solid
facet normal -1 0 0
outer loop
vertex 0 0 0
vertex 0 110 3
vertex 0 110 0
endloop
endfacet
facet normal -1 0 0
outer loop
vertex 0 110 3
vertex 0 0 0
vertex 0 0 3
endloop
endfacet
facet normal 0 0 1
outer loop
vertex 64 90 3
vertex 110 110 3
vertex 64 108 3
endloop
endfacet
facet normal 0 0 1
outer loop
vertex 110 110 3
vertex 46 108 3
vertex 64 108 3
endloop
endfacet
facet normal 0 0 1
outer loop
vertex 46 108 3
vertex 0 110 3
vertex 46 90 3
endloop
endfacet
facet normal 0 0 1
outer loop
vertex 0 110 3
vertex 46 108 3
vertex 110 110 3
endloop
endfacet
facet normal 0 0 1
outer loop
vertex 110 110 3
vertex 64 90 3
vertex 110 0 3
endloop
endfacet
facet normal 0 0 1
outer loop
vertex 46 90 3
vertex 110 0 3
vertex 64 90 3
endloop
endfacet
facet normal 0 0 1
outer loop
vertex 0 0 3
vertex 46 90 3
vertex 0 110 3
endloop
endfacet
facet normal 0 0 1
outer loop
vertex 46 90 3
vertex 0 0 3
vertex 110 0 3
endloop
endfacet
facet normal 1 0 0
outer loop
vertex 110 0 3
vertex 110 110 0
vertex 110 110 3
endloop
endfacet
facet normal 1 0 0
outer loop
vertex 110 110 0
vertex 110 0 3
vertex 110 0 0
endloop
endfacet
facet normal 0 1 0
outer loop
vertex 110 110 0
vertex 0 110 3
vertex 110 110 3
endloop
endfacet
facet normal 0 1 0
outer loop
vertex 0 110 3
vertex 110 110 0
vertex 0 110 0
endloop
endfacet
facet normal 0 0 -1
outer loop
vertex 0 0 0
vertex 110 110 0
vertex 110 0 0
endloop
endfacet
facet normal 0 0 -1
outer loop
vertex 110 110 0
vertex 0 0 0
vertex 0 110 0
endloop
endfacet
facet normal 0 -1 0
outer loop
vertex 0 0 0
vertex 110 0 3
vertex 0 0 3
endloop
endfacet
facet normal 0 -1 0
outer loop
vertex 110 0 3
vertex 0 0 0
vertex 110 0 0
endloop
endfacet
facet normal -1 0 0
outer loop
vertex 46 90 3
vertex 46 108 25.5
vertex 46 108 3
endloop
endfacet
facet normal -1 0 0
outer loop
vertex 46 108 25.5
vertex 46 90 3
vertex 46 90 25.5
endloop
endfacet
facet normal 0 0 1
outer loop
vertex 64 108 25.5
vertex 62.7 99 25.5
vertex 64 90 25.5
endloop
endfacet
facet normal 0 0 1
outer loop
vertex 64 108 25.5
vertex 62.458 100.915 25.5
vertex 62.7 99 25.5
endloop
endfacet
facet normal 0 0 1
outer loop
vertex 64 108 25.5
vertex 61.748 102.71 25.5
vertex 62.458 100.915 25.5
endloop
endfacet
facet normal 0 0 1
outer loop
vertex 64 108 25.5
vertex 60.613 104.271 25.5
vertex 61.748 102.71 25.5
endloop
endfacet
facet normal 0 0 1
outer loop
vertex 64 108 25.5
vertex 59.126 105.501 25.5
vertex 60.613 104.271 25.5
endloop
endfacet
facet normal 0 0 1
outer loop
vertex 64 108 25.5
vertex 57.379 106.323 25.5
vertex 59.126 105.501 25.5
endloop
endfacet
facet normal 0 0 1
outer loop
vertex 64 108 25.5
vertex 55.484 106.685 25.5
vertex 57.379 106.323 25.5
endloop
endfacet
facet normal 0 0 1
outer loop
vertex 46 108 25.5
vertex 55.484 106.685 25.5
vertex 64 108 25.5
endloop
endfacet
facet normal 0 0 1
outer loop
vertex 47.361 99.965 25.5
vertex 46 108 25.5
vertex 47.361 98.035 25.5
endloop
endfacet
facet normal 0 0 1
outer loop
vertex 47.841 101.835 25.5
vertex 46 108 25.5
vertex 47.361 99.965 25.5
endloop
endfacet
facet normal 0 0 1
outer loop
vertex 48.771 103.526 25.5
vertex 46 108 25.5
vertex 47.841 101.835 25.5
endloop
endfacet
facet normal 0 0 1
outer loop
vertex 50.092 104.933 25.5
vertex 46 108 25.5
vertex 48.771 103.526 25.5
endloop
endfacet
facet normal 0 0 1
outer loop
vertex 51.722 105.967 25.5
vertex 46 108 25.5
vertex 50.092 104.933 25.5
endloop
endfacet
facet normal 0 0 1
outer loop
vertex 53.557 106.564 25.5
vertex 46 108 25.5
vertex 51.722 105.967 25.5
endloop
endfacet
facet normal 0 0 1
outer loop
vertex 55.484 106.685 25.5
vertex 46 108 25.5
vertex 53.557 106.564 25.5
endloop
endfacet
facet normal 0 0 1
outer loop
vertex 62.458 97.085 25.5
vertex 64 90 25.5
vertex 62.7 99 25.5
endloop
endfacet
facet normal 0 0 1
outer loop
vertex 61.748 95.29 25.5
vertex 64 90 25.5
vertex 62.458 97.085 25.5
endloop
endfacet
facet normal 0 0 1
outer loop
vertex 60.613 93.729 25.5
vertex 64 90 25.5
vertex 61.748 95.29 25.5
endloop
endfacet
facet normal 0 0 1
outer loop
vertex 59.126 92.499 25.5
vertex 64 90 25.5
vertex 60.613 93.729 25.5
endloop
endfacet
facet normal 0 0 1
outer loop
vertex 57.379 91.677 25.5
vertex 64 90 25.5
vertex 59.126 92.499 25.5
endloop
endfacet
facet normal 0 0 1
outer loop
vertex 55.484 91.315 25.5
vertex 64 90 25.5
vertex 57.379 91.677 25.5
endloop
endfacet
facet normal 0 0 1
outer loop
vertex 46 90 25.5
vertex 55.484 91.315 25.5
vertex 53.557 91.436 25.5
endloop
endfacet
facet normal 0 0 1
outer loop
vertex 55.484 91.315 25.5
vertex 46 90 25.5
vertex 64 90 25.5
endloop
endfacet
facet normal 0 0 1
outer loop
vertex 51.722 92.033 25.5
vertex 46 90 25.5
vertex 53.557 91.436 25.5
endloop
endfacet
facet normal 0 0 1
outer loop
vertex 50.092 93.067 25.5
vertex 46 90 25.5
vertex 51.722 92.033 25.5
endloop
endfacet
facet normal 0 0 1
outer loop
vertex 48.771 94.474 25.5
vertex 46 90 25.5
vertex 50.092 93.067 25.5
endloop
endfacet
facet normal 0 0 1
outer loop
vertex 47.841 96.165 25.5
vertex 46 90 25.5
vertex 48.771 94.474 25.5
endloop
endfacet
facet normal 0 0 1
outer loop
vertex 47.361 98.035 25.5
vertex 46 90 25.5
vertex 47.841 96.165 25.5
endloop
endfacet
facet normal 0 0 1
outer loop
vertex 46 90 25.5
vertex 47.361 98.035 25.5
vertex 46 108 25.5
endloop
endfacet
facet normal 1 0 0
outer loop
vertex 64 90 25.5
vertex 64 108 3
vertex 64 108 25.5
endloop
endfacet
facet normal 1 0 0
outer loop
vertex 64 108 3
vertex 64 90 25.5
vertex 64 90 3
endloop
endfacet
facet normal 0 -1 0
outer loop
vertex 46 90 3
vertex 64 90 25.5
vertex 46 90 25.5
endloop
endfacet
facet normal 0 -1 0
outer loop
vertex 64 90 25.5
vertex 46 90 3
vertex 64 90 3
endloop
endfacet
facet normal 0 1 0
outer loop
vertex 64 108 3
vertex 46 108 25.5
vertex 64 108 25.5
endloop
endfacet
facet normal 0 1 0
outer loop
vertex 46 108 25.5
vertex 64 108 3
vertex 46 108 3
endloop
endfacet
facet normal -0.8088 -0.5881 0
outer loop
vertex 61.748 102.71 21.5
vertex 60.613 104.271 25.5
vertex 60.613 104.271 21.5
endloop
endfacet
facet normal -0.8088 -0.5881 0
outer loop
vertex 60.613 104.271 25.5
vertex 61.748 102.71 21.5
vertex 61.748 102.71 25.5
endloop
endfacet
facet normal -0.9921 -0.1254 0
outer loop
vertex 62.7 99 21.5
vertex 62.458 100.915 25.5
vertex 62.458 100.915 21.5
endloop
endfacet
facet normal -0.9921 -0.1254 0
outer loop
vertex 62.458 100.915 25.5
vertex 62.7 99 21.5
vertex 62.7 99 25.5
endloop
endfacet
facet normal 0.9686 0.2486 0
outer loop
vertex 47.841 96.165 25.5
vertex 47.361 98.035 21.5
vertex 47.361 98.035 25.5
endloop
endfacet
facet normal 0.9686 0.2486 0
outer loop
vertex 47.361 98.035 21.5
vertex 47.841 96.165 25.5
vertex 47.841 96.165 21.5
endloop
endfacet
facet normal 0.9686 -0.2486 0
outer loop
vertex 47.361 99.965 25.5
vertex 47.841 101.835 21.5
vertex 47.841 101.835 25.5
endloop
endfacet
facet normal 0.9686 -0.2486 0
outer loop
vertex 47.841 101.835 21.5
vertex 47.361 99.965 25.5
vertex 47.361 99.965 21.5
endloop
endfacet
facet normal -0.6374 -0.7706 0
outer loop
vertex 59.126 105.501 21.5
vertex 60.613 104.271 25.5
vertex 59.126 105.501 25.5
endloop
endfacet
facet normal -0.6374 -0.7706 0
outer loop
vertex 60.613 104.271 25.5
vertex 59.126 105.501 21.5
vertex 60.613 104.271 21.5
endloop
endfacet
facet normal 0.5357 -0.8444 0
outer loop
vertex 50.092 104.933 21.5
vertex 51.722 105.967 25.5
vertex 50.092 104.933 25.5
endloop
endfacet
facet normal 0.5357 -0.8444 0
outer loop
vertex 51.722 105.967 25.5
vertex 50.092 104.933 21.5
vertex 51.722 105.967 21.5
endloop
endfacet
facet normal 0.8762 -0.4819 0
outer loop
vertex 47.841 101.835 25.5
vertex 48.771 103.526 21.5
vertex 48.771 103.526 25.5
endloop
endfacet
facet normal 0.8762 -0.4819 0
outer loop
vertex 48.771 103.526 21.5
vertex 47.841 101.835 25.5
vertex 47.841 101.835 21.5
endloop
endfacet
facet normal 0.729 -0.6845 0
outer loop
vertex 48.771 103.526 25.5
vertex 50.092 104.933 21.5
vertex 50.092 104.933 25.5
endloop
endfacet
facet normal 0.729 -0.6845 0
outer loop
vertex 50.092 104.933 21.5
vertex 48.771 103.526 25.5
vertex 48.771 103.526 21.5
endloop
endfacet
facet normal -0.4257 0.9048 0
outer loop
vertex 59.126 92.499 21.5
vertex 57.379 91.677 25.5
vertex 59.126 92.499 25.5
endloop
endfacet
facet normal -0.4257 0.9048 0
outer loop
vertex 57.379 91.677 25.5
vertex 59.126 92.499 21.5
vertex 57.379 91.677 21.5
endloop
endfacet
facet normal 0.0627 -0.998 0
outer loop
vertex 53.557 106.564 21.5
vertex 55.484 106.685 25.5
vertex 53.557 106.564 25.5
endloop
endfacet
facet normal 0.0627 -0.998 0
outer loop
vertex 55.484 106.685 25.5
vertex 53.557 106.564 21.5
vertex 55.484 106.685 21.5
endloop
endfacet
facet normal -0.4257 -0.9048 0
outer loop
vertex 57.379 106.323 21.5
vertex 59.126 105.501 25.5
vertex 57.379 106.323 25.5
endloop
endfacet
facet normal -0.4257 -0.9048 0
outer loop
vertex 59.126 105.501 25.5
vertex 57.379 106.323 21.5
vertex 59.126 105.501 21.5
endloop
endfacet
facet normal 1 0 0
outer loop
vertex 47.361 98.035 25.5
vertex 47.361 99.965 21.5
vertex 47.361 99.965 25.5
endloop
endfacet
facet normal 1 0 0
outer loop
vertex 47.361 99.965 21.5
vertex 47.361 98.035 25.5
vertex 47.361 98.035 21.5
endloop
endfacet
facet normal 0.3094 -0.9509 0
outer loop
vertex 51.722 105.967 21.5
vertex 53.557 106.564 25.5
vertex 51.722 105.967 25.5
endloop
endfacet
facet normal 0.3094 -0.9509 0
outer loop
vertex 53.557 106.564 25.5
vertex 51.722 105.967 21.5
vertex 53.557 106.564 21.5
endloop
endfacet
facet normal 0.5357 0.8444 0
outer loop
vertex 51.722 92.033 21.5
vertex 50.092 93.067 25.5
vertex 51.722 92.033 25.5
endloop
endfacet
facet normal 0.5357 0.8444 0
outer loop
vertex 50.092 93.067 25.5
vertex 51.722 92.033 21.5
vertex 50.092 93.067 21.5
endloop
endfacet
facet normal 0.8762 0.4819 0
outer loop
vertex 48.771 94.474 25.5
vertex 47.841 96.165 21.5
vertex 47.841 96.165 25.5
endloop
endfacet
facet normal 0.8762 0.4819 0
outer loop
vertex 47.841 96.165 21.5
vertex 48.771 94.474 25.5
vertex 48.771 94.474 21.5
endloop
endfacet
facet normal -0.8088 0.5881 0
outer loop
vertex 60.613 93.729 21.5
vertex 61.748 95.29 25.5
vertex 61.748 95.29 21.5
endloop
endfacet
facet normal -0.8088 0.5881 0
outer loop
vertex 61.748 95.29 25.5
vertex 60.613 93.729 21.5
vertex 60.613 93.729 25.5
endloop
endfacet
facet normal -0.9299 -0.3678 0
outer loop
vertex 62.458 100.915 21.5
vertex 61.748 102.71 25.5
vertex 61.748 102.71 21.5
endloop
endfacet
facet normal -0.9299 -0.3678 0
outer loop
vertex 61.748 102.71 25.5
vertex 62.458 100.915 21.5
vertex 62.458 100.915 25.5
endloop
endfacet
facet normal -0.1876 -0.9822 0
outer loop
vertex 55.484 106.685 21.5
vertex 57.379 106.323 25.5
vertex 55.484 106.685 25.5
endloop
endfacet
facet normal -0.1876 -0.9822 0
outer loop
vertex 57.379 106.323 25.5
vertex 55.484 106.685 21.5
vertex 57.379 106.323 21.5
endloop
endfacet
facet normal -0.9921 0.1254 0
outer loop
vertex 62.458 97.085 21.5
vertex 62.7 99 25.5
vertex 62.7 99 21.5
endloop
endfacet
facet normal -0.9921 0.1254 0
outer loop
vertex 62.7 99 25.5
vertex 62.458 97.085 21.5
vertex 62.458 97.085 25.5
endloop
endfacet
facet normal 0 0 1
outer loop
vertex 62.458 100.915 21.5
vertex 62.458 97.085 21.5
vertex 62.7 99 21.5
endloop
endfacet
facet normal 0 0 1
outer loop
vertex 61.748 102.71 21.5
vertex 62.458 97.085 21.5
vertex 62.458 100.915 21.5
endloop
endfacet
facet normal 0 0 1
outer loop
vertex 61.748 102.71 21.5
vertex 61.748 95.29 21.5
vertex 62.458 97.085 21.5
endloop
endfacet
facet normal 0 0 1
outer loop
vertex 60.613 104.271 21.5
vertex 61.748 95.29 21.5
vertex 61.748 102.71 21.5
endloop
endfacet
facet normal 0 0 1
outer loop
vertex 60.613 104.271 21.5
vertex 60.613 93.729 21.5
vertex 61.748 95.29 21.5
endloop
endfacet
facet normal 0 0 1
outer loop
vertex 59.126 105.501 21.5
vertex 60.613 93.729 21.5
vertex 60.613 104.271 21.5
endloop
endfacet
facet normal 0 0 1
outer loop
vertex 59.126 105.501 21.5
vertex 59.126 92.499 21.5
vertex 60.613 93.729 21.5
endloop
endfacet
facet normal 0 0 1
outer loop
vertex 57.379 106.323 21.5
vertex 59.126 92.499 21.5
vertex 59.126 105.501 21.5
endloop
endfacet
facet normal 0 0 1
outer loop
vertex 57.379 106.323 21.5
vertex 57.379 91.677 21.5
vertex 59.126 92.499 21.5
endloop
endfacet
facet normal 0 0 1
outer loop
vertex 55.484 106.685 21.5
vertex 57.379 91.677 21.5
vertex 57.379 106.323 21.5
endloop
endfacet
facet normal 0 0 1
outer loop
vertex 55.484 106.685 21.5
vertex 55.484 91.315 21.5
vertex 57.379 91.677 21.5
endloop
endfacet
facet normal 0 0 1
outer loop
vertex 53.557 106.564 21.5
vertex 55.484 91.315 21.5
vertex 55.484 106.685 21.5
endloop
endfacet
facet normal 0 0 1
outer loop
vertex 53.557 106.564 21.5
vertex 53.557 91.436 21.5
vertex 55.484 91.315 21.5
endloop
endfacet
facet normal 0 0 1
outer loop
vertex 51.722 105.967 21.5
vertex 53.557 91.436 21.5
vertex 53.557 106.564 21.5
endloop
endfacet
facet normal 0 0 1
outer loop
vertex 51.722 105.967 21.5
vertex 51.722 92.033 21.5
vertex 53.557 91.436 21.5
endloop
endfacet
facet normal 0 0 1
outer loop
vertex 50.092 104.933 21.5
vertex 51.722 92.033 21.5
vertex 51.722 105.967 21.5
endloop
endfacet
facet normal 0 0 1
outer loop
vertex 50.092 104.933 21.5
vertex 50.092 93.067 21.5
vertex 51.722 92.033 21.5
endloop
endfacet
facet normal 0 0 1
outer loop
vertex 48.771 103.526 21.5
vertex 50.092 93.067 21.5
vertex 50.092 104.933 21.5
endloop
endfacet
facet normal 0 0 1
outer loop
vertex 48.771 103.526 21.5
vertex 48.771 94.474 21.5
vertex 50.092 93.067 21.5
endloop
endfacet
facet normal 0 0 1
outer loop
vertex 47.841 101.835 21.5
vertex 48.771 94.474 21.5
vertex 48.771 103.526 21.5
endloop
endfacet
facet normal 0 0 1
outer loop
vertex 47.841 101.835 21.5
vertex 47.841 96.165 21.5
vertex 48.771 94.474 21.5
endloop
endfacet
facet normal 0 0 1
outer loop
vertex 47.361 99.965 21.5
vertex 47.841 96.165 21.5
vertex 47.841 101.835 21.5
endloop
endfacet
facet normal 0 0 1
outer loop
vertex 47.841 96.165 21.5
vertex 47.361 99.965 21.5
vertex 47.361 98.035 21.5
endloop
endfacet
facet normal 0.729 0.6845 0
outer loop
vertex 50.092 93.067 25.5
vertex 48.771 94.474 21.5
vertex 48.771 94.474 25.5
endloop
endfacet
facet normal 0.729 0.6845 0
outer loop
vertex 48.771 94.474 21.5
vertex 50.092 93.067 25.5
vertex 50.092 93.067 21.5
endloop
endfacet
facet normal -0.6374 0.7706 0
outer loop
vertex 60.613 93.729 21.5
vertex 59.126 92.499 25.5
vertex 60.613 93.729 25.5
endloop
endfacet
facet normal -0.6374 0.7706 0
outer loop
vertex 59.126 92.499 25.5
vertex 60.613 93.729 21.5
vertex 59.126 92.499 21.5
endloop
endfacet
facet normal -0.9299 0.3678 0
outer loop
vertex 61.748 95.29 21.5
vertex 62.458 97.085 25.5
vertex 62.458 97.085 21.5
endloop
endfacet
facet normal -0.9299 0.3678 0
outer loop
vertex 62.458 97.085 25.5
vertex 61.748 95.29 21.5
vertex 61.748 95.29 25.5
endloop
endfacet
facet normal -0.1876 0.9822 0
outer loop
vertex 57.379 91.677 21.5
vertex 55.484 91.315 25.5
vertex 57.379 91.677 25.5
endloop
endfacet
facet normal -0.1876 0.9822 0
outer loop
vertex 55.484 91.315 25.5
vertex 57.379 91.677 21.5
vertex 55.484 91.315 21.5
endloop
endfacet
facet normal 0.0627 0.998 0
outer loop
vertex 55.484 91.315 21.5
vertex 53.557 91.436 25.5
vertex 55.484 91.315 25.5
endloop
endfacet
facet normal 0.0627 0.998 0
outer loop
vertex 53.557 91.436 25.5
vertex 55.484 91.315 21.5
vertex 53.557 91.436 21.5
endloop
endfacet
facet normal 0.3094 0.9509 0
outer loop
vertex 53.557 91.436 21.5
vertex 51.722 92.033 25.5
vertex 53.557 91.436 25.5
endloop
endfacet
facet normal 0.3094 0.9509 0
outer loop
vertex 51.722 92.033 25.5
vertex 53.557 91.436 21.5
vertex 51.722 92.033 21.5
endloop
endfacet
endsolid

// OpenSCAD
length = 110;
width = 110;
height = 3;

//Based on magnet size:
pillarSideLength = 18;
pillarSideOffset = .5;

magnetBaseInnerDiameter = 15.4;
magnetHeight = 4.0;

spaceBetweenCircles = 2;
wallThickness = spaceBetweenCircles;
pillarHeight = 5 + 5 + 5 + 7 + .5 + height;

difference() {
union(){
    cube([length, width, height]);


//----------------------------------


            
//---------------------------------------------------------------------
    
          

//----------------------------------------
   
    translate([length/2 - ((pillarSideLength)/2), width - (wallThickness + pillarSideLength), 0])
        cube([pillarSideLength, pillarSideLength, pillarHeight]);
        

}
    translate([length/2,  width - (wallThickness + magnetBaseInnerDiameter/2 + (pillarSideLength-magnetBaseInnerDiameter)/2), pillarHeight - magnetHeight])
        cylinder(magnetHeight, d=magnetBaseInnerDiameter);

}
